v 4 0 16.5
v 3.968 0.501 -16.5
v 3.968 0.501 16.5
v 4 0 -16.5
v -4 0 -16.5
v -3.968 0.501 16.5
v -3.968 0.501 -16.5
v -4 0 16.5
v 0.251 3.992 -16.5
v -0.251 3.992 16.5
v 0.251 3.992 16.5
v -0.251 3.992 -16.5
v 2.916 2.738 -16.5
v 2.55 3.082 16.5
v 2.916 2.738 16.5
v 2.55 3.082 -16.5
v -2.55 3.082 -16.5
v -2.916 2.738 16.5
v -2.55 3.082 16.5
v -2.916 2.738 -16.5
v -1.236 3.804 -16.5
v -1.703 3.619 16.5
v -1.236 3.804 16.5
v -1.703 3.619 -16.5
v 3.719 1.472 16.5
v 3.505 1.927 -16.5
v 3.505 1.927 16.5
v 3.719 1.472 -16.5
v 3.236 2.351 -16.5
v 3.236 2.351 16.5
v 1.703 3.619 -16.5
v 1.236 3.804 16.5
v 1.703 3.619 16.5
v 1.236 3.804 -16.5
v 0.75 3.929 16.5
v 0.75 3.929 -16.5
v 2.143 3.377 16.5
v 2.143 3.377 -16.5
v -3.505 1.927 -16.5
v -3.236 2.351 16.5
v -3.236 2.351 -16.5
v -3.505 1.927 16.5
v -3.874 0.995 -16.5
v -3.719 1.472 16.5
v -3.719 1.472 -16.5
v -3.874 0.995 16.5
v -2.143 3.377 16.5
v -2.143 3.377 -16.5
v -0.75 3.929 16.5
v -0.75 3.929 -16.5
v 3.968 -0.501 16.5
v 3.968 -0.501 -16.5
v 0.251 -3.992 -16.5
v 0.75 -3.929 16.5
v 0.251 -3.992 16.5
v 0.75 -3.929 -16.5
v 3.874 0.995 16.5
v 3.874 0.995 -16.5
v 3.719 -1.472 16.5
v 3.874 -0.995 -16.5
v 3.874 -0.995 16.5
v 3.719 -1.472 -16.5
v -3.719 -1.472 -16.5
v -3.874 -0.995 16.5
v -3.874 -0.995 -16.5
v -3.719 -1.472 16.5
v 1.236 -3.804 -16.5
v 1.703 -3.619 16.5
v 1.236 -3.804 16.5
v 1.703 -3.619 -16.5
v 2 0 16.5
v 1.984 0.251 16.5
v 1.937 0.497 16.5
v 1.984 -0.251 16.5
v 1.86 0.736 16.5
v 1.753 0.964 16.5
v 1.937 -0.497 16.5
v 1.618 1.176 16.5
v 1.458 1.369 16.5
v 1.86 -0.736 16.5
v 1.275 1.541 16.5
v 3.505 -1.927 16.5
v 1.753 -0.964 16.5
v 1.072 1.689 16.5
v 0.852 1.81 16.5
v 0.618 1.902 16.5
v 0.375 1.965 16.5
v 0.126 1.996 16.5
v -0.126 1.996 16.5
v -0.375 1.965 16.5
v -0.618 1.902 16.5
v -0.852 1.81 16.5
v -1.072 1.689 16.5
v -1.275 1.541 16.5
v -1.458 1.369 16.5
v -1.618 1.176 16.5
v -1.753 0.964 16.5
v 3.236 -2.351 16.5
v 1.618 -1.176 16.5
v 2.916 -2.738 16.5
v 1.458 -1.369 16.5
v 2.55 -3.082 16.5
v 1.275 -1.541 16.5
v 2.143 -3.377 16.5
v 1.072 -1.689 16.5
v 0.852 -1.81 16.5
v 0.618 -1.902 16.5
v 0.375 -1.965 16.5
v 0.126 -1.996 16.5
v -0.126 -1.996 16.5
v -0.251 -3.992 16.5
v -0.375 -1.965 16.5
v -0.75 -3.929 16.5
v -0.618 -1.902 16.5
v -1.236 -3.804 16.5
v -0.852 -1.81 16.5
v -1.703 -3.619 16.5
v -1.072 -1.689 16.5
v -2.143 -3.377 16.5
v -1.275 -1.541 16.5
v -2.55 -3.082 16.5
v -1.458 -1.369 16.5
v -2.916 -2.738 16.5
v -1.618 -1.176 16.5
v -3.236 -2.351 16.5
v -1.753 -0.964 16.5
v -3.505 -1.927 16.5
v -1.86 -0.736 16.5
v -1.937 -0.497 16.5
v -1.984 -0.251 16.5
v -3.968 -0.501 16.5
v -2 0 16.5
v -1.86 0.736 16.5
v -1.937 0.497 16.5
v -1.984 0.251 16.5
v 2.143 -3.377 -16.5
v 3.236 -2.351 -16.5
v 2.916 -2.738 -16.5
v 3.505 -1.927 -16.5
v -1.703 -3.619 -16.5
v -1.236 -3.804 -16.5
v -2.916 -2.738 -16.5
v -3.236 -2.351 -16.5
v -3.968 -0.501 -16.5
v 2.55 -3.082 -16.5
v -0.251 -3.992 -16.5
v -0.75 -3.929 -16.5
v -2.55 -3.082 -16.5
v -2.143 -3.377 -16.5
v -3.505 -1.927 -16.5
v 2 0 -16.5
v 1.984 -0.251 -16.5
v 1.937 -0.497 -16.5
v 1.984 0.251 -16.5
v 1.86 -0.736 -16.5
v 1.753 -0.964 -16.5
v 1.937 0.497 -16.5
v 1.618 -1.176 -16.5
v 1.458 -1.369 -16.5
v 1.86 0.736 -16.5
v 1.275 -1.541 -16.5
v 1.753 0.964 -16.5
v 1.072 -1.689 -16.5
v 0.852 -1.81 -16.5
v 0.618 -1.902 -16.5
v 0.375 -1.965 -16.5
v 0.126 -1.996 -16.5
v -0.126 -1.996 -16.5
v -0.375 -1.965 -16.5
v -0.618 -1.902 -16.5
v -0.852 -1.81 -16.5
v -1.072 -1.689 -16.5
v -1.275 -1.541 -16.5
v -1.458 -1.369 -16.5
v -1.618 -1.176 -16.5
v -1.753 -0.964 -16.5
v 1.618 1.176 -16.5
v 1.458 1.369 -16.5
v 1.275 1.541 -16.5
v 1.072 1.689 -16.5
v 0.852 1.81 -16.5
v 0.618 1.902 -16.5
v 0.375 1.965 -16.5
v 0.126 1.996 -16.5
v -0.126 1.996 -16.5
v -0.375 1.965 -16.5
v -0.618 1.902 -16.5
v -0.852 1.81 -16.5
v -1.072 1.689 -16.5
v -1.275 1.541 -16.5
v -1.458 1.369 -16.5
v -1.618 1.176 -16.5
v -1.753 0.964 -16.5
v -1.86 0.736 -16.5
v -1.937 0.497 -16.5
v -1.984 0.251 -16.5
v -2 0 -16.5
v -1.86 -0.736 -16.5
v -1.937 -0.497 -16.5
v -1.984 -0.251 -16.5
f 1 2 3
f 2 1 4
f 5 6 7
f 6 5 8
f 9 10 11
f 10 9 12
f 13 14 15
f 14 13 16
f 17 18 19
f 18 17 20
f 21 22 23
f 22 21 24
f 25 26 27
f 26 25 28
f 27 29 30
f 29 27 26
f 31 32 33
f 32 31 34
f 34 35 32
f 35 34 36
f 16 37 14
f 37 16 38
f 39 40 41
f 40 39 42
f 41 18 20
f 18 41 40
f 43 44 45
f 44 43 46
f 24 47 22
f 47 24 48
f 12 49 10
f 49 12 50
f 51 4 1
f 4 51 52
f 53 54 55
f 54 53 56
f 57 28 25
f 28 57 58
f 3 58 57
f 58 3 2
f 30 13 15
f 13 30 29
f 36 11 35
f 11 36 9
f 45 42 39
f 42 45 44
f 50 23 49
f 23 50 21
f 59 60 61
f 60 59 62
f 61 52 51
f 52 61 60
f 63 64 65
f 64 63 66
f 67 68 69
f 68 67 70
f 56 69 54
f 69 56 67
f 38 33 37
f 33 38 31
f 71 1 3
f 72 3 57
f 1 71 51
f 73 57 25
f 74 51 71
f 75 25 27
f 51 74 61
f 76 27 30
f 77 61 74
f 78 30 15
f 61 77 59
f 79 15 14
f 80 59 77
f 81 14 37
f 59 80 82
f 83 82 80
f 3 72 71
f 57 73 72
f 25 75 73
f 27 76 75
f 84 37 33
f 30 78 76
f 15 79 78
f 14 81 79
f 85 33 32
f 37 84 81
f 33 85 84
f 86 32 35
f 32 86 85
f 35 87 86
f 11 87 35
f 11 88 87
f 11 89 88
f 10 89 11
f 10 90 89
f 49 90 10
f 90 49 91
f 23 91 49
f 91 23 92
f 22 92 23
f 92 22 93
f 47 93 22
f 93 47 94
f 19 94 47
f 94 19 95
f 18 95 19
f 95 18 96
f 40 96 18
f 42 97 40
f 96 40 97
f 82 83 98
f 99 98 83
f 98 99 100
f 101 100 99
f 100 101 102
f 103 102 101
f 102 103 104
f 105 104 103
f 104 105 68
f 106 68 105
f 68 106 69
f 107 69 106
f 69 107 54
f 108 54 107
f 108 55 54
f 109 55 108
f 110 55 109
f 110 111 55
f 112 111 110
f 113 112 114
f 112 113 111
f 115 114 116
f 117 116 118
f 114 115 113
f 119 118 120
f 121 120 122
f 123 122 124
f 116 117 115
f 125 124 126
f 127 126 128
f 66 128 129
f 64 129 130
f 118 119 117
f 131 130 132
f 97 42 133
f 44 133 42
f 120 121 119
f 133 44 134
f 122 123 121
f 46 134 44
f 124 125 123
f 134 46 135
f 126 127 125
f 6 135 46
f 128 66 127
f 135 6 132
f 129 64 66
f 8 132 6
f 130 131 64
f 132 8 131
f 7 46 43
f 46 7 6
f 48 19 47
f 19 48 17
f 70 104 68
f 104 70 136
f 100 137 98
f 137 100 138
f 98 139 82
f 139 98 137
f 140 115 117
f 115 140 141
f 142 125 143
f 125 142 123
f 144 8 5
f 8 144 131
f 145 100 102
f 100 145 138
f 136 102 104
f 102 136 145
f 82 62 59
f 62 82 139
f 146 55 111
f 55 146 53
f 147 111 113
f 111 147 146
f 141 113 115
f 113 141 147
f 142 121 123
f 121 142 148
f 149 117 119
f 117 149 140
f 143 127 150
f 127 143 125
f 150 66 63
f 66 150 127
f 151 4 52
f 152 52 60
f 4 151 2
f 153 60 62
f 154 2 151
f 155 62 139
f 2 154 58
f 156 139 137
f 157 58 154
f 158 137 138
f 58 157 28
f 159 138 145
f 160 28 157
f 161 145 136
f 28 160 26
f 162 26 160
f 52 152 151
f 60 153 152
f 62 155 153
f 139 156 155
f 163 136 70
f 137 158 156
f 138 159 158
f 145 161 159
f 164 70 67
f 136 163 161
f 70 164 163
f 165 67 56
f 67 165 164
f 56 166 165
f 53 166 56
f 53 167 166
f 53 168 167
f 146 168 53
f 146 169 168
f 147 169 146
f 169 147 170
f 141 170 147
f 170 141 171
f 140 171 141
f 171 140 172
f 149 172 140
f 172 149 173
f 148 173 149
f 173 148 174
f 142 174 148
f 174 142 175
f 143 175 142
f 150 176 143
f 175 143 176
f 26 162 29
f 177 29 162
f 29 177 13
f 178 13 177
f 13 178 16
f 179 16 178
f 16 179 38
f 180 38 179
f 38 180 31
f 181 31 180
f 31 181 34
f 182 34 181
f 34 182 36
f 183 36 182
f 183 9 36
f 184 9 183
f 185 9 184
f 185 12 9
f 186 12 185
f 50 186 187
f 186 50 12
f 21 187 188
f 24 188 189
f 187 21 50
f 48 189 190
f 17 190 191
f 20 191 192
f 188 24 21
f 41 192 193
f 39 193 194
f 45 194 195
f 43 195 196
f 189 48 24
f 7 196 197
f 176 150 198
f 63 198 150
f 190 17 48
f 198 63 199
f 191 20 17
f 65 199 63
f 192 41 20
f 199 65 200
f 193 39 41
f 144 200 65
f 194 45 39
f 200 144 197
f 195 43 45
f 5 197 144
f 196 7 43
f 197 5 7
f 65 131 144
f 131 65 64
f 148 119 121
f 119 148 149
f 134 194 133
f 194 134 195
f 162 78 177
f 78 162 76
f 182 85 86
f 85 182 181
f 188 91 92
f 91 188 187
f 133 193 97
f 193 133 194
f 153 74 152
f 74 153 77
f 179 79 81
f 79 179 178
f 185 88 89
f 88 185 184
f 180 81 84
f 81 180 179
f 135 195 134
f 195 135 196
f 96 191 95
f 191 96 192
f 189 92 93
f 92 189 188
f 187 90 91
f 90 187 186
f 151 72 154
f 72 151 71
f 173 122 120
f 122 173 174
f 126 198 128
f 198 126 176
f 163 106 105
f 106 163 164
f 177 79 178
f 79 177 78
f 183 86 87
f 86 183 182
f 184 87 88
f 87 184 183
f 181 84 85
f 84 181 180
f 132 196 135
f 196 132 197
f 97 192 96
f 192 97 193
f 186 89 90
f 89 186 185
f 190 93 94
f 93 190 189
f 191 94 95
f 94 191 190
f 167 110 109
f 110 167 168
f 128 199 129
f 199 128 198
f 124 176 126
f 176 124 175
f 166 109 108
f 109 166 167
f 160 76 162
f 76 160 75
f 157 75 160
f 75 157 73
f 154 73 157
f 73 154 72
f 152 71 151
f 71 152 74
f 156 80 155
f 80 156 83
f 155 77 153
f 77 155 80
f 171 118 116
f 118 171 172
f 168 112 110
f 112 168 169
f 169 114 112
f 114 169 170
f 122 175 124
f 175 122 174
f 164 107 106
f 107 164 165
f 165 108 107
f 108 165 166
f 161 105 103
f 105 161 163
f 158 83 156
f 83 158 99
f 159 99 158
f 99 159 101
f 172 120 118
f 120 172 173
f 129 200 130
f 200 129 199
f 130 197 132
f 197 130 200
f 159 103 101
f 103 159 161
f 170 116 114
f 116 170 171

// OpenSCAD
$fn = 50;


difference() {
	union() {
		translate(v = [0, 0, -16.5000000000]) {
			cylinder(h = 33, r = 4.0000000000);
		}
	}
	union() {
		translate(v = [0, 0, -100.0000000000]) {
			cylinder(h = 200, r = 2.0000000000);
		}
	}
}
